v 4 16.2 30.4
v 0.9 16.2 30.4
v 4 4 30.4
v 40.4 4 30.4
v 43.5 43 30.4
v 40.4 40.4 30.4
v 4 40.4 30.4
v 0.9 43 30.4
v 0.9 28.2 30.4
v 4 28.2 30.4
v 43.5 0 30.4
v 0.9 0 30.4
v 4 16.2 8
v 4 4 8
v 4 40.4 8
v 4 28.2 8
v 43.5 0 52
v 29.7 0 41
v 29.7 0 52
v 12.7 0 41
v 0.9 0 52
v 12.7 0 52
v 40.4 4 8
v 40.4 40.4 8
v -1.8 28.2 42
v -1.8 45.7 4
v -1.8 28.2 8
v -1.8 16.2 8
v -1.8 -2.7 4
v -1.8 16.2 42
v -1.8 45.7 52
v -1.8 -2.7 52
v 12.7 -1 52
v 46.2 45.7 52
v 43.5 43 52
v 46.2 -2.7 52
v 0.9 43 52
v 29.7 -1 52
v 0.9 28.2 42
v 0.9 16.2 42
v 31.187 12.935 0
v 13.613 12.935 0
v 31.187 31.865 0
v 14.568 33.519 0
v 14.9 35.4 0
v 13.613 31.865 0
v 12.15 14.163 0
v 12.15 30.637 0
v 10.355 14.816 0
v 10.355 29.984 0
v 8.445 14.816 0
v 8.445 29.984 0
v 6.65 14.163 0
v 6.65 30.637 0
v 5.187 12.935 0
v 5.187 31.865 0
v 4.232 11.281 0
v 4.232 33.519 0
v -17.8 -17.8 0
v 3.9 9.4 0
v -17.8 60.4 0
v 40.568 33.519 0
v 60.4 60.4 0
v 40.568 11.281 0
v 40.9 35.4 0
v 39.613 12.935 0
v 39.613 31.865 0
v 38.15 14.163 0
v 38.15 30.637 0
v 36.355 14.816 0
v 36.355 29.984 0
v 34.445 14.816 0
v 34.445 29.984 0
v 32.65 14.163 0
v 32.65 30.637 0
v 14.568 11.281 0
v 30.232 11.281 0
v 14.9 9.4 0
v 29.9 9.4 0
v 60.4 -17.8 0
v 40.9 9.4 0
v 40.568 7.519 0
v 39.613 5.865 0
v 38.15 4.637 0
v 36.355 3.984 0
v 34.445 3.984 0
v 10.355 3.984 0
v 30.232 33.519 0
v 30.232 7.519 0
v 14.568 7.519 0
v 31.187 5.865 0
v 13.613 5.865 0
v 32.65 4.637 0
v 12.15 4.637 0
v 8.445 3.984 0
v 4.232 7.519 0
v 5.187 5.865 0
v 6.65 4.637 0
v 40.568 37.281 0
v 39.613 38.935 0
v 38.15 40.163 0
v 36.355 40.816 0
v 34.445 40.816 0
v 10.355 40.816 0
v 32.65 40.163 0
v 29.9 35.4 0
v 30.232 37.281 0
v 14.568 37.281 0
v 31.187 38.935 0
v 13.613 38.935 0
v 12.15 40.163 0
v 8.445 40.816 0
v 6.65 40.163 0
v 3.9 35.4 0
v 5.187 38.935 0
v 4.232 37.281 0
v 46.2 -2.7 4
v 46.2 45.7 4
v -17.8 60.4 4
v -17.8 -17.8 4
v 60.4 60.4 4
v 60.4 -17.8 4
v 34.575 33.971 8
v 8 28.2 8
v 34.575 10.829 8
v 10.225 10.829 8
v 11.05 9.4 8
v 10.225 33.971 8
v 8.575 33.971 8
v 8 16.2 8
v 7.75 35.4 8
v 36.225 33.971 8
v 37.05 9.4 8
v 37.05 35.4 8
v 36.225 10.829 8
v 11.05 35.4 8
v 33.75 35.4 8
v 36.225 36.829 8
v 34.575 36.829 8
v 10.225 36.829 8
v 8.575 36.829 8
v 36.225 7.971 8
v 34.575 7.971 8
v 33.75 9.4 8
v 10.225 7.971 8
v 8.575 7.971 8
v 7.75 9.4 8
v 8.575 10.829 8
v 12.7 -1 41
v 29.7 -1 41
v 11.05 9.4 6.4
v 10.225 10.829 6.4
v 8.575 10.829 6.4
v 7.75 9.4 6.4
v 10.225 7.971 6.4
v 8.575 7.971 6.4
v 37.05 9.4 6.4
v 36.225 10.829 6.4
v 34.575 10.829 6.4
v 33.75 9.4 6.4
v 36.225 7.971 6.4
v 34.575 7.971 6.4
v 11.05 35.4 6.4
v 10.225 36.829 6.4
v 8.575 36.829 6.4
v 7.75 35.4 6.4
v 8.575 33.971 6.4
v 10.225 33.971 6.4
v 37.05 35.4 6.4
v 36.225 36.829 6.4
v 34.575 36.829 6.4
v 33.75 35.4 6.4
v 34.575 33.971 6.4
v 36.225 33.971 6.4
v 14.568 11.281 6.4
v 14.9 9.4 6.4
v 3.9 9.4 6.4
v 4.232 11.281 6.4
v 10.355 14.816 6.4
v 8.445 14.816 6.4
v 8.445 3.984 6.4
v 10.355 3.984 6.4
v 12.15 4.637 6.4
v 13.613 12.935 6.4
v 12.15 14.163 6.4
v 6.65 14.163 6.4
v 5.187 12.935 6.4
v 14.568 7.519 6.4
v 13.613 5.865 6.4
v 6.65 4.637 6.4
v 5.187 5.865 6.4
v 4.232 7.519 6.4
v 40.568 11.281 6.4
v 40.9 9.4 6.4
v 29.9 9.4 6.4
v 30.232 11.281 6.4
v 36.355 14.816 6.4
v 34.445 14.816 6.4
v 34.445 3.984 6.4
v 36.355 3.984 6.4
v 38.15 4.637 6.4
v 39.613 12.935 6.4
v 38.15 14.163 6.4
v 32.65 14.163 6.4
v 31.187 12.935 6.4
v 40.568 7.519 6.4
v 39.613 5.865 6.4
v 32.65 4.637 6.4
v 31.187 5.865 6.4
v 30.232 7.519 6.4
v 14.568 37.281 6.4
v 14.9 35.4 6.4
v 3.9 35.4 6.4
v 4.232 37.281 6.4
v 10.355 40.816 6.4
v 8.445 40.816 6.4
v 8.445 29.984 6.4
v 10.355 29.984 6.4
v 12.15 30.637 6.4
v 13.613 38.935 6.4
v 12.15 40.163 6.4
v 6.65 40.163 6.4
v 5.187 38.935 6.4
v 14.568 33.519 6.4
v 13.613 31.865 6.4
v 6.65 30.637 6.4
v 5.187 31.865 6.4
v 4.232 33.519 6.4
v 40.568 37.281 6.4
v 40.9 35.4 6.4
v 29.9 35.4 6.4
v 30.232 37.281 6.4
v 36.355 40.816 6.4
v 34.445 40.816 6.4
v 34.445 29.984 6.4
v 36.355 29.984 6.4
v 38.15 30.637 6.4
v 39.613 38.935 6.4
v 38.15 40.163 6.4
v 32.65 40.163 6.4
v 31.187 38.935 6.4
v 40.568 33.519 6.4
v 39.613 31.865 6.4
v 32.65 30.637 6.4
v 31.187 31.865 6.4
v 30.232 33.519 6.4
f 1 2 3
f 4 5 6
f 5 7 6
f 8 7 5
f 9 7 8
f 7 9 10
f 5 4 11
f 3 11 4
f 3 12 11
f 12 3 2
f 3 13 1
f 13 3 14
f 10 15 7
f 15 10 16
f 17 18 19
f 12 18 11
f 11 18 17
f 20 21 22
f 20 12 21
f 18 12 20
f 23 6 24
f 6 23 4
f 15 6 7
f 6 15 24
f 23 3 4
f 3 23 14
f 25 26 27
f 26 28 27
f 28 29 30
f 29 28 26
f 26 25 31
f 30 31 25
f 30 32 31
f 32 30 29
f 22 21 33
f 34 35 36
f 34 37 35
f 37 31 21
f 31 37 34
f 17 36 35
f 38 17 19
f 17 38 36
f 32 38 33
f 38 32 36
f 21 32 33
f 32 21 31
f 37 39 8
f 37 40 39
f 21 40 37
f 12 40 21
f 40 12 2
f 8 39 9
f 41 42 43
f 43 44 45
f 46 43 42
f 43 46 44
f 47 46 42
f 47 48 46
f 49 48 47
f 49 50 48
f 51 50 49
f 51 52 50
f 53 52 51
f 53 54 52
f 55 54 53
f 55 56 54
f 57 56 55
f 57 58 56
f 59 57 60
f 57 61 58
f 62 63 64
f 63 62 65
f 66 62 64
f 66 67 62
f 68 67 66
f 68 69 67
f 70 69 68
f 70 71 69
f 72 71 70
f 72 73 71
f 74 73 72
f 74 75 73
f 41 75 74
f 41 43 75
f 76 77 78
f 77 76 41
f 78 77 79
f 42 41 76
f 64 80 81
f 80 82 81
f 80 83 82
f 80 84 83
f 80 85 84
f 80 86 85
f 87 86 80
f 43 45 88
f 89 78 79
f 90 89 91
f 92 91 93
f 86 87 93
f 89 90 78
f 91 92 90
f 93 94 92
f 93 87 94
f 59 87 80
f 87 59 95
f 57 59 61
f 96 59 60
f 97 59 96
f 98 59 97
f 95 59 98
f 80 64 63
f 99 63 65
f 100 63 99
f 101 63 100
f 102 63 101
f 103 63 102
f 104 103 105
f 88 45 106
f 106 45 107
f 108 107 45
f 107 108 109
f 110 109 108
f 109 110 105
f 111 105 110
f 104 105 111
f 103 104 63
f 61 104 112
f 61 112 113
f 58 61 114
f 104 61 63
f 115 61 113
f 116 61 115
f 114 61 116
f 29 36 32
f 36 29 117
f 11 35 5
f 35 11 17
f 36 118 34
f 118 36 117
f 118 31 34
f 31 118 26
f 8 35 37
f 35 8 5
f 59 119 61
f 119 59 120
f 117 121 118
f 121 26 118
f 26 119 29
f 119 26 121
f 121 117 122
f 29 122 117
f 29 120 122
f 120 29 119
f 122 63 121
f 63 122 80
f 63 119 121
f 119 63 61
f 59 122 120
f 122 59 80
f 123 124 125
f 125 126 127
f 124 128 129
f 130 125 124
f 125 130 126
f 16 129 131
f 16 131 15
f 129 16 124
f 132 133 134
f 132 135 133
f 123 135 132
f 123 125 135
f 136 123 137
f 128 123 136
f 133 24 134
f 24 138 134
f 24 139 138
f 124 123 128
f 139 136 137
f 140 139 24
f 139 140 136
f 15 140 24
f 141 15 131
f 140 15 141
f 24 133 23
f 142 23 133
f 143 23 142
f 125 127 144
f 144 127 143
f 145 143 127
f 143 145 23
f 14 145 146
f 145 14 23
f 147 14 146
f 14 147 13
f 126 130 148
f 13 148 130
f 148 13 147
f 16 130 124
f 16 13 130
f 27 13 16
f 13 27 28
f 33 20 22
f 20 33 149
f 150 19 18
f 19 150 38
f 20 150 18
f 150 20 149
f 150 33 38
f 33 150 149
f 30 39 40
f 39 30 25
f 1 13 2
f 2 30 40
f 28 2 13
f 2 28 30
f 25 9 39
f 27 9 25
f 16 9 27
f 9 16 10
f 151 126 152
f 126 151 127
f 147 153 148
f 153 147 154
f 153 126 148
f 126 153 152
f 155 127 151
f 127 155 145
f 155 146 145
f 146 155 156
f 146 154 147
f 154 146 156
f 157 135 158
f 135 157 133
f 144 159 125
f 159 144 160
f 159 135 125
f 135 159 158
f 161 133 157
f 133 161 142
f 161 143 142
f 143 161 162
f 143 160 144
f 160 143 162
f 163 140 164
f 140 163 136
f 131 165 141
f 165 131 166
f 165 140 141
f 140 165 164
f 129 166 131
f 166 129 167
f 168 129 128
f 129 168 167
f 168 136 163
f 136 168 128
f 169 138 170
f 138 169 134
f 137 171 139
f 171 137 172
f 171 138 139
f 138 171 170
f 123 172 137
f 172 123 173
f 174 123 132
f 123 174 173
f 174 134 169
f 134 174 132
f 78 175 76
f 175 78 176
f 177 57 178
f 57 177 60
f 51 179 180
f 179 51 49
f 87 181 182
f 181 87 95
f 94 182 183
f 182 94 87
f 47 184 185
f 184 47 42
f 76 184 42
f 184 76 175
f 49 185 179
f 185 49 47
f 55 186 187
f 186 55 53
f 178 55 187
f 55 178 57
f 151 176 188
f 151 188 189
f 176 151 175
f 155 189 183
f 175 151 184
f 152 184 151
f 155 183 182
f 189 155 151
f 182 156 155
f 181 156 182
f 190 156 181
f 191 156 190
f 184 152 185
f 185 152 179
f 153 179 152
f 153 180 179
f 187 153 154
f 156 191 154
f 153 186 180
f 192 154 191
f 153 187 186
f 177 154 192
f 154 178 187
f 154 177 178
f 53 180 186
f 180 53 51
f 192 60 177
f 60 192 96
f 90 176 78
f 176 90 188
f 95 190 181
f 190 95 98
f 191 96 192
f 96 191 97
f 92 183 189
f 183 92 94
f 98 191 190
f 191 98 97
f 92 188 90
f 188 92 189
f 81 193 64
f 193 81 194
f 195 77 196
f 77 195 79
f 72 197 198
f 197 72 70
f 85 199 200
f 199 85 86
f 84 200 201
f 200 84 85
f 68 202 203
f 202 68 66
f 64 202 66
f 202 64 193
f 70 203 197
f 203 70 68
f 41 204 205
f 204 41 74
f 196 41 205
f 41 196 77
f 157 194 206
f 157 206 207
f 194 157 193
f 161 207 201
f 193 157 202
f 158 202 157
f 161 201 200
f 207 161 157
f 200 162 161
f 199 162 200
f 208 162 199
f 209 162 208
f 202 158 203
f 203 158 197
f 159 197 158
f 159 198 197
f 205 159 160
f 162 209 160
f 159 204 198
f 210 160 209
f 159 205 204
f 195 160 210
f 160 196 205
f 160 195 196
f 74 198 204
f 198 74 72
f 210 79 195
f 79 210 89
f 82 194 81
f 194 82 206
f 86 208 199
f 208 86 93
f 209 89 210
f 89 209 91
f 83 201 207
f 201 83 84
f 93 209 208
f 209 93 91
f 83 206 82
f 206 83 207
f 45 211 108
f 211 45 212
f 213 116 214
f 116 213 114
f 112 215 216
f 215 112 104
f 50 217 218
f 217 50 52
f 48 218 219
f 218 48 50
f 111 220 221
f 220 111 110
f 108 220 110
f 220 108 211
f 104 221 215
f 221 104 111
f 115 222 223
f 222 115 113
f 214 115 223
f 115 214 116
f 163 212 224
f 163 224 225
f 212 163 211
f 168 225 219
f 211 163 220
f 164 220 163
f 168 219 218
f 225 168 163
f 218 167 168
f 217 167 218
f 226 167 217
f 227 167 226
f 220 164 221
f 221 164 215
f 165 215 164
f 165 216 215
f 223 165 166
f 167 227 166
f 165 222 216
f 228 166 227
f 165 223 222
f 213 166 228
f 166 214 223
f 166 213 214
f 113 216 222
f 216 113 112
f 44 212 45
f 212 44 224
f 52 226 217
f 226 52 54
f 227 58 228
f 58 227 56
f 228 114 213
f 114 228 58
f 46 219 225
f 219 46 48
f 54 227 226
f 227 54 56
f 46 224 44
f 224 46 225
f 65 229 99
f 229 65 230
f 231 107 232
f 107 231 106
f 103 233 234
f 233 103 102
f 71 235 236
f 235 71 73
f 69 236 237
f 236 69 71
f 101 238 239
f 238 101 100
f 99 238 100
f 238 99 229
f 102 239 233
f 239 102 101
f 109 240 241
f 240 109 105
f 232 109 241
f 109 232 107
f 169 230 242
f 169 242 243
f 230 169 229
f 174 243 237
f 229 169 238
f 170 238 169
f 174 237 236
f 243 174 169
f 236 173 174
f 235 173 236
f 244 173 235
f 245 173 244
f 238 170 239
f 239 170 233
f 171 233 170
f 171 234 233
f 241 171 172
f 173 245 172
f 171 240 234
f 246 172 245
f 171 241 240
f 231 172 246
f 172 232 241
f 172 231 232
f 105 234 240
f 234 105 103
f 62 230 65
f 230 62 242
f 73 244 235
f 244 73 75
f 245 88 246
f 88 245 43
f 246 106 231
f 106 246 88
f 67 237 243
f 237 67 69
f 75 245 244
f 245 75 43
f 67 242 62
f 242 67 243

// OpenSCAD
widthStepperMotor=35+1.4;
depthStepperMotor=35+1.4;
heightStepperMotor=20;
sideSpace=1.8;

distanceHolesStepperMotor=26;
offsetHoles=4.5+sideSpace/2;
radiusMountingHoles=1.65; 

widthBasePane=80;
depthBasePane=80;
thicknessBasePane=4; //not greater than 7.6

thicknessMountingPlate=6.4; //1.6
thicknessScrewPlate=1.6;


thickness=4;
thicknessInner=4;
thicknessOuter=2.7;
radiusScrewHoles=5.5;

heightAttachment=44;

wireHoleHeight=34;
wireHoleWidth=12;

screwHoleSideWidth=17;
screwHoleSideHeight=10;
screwHoleSideDepth=1;

module mountingPlate(width,depth){
   
    
    
        difference(){
            union(){
                cube([width,depth,thicknessMountingPlate]);
                
                
                translate([(width-widthBasePane)/2,(depth-depthBasePane)/2,0]){
                  cube([widthBasePane-sideSpace,depthBasePane-sideSpace,thicknessBasePane]);  
                }
                
                translate([0,0,thicknessMountingPlate]){
                    cube([width,depth,thicknessScrewPlate]); 
                }  
                innerWall();
                outerWall();
                
               
            }
            
            //Screw Hole Side
            translate([thickness+widthStepperMotor/2-screwHoleSideWidth/2-1,-screwHoleSideDepth,thicknessMountingPlate+thicknessScrewPlate+heightAttachment-screwHoleSideHeight-1]){
                    cube([screwHoleSideWidth,thickness*2,2*screwHoleSideHeight]); 
                } 
            
            //WireHole
            translate([-2*thickness,thickness+widthStepperMotor/2-wireHoleWidth/2,thicknessMountingPlate+thicknessScrewPlate]){
                    cube([4*thickness,wireHoleWidth,wireHoleHeight]); 
                } 
            
         
           //Mounting holes
          translate([thickness+offsetHoles,                   thickness+offsetHoles,thicknessMountingPlate-1]){
                cylinder(h=2*thickness + thicknessMountingPlate +1,r=                       radiusMountingHoles);  
          }
          
          translate([thickness+offsetHoles+distanceHolesStepperMotor,              thickness+offsetHoles,thicknessMountingPlate-1]){
                cylinder(h=2*thickness + thicknessMountingPlate +1,r=radiusMountingHoles);  
          }
          
          translate([thickness+offsetHoles,                   thickness+offsetHoles+distanceHolesStepperMotor,thicknessMountingPlate-1]){
                cylinder(h=2*thickness + thicknessMountingPlate +1,r=                       radiusMountingHoles);  
          }
          
          translate([thickness+offsetHoles+distanceHolesStepperMotor,              thickness+offsetHoles+distanceHolesStepperMotor,thicknessMountingPlate-1]){
                cylinder(h=2*thickness + thicknessMountingPlate +1,r=radiusMountingHoles);  
          }
          
          //Screw holes  
          translate([thickness+offsetHoles,                   thickness+offsetHoles,-1]){
                cylinder(h=thicknessMountingPlate+1,r=                       radiusScrewHoles);  
          }
          
          translate([thickness+offsetHoles+distanceHolesStepperMotor,              thickness+offsetHoles,-1]){
                cylinder(h=thicknessMountingPlate +1,r=radiusScrewHoles);  
          }
          
          translate([thickness+offsetHoles,                   thickness+offsetHoles+distanceHolesStepperMotor,-1]){
                cylinder(h=thicknessMountingPlate+1,r=radiusScrewHoles);  
          }
          
           translate([thickness+offsetHoles+distanceHolesStepperMotor,              thickness+offsetHoles+distanceHolesStepperMotor,-1])
          {
                cylinder(h=thicknessMountingPlate+1,r=radiusScrewHoles);  
          }
            
    }
    
}

module innerWall(){
    //inner walls
    
    translate([0,0,thicknessMountingPlate]){
        cube([thickness,widthStepperMotor+2*thickness,heightStepperMotor +          thickness]);   
    }
    
     translate([widthStepperMotor+thickness,0,thicknessMountingPlate]){
        cube([thickness,widthStepperMotor+2*thickness,heightStepperMotor +          thickness]);   
    }
    
    
     translate([widthStepperMotor+2*thickness,depthStepperMotor+thickness,thicknessMountingPlate]){
        rotate(a=90){
             cube([thickness,widthStepperMotor+2*thickness,heightStepperMotor +          thickness]); 
         }
     }
     
     
     translate([widthStepperMotor+2*thickness,0,thicknessMountingPlate]){
        rotate(a=90){
             cube([thickness,widthStepperMotor+2*thickness,heightStepperMotor +thickness]); 
         }
     }
    
}
    
module outerWall(){
 //outer walls
    translate([-thicknessOuter+sideSpace/2,-thicknessOuter,0]){
        cube([thicknessOuter,widthStepperMotor+2*thickness+2*thicknessOuter-sideSpace,thicknessScrewPlate+thicknessMountingPlate+heightAttachment]);   
    }
    
     translate([widthStepperMotor+2*thickness-sideSpace/2,-thicknessOuter,0]){
        cube([thicknessOuter,widthStepperMotor+2*thickness+2*thicknessOuter-sideSpace,thicknessScrewPlate+thicknessMountingPlate+         heightAttachment]);   
    }
    
    
     translate([widthStepperMotor+2*thickness+thicknessOuter-sideSpace/2,-thicknessOuter,0]){
        rotate(a=90){
             cube([thicknessOuter,widthStepperMotor+2*thickness+2*thicknessOuter-sideSpace,thicknessScrewPlate+thicknessMountingPlate+heightAttachment]); 
         }
     }
     
     
     translate([widthStepperMotor+2*thickness+thicknessOuter-sideSpace/2,widthStepperMotor+2*thickness -1.4,0]){
        rotate(a=90){
             cube([thicknessOuter,widthStepperMotor+2*thickness+2*thicknessOuter-sideSpace,thicknessScrewPlate+thicknessMountingPlate+heightAttachment]); 
         }
     }
 
}   
     
     
    



union(){
    mountingPlate(widthStepperMotor+2*thickness,depthStepperMotor+2*thickness);
    
    
}
